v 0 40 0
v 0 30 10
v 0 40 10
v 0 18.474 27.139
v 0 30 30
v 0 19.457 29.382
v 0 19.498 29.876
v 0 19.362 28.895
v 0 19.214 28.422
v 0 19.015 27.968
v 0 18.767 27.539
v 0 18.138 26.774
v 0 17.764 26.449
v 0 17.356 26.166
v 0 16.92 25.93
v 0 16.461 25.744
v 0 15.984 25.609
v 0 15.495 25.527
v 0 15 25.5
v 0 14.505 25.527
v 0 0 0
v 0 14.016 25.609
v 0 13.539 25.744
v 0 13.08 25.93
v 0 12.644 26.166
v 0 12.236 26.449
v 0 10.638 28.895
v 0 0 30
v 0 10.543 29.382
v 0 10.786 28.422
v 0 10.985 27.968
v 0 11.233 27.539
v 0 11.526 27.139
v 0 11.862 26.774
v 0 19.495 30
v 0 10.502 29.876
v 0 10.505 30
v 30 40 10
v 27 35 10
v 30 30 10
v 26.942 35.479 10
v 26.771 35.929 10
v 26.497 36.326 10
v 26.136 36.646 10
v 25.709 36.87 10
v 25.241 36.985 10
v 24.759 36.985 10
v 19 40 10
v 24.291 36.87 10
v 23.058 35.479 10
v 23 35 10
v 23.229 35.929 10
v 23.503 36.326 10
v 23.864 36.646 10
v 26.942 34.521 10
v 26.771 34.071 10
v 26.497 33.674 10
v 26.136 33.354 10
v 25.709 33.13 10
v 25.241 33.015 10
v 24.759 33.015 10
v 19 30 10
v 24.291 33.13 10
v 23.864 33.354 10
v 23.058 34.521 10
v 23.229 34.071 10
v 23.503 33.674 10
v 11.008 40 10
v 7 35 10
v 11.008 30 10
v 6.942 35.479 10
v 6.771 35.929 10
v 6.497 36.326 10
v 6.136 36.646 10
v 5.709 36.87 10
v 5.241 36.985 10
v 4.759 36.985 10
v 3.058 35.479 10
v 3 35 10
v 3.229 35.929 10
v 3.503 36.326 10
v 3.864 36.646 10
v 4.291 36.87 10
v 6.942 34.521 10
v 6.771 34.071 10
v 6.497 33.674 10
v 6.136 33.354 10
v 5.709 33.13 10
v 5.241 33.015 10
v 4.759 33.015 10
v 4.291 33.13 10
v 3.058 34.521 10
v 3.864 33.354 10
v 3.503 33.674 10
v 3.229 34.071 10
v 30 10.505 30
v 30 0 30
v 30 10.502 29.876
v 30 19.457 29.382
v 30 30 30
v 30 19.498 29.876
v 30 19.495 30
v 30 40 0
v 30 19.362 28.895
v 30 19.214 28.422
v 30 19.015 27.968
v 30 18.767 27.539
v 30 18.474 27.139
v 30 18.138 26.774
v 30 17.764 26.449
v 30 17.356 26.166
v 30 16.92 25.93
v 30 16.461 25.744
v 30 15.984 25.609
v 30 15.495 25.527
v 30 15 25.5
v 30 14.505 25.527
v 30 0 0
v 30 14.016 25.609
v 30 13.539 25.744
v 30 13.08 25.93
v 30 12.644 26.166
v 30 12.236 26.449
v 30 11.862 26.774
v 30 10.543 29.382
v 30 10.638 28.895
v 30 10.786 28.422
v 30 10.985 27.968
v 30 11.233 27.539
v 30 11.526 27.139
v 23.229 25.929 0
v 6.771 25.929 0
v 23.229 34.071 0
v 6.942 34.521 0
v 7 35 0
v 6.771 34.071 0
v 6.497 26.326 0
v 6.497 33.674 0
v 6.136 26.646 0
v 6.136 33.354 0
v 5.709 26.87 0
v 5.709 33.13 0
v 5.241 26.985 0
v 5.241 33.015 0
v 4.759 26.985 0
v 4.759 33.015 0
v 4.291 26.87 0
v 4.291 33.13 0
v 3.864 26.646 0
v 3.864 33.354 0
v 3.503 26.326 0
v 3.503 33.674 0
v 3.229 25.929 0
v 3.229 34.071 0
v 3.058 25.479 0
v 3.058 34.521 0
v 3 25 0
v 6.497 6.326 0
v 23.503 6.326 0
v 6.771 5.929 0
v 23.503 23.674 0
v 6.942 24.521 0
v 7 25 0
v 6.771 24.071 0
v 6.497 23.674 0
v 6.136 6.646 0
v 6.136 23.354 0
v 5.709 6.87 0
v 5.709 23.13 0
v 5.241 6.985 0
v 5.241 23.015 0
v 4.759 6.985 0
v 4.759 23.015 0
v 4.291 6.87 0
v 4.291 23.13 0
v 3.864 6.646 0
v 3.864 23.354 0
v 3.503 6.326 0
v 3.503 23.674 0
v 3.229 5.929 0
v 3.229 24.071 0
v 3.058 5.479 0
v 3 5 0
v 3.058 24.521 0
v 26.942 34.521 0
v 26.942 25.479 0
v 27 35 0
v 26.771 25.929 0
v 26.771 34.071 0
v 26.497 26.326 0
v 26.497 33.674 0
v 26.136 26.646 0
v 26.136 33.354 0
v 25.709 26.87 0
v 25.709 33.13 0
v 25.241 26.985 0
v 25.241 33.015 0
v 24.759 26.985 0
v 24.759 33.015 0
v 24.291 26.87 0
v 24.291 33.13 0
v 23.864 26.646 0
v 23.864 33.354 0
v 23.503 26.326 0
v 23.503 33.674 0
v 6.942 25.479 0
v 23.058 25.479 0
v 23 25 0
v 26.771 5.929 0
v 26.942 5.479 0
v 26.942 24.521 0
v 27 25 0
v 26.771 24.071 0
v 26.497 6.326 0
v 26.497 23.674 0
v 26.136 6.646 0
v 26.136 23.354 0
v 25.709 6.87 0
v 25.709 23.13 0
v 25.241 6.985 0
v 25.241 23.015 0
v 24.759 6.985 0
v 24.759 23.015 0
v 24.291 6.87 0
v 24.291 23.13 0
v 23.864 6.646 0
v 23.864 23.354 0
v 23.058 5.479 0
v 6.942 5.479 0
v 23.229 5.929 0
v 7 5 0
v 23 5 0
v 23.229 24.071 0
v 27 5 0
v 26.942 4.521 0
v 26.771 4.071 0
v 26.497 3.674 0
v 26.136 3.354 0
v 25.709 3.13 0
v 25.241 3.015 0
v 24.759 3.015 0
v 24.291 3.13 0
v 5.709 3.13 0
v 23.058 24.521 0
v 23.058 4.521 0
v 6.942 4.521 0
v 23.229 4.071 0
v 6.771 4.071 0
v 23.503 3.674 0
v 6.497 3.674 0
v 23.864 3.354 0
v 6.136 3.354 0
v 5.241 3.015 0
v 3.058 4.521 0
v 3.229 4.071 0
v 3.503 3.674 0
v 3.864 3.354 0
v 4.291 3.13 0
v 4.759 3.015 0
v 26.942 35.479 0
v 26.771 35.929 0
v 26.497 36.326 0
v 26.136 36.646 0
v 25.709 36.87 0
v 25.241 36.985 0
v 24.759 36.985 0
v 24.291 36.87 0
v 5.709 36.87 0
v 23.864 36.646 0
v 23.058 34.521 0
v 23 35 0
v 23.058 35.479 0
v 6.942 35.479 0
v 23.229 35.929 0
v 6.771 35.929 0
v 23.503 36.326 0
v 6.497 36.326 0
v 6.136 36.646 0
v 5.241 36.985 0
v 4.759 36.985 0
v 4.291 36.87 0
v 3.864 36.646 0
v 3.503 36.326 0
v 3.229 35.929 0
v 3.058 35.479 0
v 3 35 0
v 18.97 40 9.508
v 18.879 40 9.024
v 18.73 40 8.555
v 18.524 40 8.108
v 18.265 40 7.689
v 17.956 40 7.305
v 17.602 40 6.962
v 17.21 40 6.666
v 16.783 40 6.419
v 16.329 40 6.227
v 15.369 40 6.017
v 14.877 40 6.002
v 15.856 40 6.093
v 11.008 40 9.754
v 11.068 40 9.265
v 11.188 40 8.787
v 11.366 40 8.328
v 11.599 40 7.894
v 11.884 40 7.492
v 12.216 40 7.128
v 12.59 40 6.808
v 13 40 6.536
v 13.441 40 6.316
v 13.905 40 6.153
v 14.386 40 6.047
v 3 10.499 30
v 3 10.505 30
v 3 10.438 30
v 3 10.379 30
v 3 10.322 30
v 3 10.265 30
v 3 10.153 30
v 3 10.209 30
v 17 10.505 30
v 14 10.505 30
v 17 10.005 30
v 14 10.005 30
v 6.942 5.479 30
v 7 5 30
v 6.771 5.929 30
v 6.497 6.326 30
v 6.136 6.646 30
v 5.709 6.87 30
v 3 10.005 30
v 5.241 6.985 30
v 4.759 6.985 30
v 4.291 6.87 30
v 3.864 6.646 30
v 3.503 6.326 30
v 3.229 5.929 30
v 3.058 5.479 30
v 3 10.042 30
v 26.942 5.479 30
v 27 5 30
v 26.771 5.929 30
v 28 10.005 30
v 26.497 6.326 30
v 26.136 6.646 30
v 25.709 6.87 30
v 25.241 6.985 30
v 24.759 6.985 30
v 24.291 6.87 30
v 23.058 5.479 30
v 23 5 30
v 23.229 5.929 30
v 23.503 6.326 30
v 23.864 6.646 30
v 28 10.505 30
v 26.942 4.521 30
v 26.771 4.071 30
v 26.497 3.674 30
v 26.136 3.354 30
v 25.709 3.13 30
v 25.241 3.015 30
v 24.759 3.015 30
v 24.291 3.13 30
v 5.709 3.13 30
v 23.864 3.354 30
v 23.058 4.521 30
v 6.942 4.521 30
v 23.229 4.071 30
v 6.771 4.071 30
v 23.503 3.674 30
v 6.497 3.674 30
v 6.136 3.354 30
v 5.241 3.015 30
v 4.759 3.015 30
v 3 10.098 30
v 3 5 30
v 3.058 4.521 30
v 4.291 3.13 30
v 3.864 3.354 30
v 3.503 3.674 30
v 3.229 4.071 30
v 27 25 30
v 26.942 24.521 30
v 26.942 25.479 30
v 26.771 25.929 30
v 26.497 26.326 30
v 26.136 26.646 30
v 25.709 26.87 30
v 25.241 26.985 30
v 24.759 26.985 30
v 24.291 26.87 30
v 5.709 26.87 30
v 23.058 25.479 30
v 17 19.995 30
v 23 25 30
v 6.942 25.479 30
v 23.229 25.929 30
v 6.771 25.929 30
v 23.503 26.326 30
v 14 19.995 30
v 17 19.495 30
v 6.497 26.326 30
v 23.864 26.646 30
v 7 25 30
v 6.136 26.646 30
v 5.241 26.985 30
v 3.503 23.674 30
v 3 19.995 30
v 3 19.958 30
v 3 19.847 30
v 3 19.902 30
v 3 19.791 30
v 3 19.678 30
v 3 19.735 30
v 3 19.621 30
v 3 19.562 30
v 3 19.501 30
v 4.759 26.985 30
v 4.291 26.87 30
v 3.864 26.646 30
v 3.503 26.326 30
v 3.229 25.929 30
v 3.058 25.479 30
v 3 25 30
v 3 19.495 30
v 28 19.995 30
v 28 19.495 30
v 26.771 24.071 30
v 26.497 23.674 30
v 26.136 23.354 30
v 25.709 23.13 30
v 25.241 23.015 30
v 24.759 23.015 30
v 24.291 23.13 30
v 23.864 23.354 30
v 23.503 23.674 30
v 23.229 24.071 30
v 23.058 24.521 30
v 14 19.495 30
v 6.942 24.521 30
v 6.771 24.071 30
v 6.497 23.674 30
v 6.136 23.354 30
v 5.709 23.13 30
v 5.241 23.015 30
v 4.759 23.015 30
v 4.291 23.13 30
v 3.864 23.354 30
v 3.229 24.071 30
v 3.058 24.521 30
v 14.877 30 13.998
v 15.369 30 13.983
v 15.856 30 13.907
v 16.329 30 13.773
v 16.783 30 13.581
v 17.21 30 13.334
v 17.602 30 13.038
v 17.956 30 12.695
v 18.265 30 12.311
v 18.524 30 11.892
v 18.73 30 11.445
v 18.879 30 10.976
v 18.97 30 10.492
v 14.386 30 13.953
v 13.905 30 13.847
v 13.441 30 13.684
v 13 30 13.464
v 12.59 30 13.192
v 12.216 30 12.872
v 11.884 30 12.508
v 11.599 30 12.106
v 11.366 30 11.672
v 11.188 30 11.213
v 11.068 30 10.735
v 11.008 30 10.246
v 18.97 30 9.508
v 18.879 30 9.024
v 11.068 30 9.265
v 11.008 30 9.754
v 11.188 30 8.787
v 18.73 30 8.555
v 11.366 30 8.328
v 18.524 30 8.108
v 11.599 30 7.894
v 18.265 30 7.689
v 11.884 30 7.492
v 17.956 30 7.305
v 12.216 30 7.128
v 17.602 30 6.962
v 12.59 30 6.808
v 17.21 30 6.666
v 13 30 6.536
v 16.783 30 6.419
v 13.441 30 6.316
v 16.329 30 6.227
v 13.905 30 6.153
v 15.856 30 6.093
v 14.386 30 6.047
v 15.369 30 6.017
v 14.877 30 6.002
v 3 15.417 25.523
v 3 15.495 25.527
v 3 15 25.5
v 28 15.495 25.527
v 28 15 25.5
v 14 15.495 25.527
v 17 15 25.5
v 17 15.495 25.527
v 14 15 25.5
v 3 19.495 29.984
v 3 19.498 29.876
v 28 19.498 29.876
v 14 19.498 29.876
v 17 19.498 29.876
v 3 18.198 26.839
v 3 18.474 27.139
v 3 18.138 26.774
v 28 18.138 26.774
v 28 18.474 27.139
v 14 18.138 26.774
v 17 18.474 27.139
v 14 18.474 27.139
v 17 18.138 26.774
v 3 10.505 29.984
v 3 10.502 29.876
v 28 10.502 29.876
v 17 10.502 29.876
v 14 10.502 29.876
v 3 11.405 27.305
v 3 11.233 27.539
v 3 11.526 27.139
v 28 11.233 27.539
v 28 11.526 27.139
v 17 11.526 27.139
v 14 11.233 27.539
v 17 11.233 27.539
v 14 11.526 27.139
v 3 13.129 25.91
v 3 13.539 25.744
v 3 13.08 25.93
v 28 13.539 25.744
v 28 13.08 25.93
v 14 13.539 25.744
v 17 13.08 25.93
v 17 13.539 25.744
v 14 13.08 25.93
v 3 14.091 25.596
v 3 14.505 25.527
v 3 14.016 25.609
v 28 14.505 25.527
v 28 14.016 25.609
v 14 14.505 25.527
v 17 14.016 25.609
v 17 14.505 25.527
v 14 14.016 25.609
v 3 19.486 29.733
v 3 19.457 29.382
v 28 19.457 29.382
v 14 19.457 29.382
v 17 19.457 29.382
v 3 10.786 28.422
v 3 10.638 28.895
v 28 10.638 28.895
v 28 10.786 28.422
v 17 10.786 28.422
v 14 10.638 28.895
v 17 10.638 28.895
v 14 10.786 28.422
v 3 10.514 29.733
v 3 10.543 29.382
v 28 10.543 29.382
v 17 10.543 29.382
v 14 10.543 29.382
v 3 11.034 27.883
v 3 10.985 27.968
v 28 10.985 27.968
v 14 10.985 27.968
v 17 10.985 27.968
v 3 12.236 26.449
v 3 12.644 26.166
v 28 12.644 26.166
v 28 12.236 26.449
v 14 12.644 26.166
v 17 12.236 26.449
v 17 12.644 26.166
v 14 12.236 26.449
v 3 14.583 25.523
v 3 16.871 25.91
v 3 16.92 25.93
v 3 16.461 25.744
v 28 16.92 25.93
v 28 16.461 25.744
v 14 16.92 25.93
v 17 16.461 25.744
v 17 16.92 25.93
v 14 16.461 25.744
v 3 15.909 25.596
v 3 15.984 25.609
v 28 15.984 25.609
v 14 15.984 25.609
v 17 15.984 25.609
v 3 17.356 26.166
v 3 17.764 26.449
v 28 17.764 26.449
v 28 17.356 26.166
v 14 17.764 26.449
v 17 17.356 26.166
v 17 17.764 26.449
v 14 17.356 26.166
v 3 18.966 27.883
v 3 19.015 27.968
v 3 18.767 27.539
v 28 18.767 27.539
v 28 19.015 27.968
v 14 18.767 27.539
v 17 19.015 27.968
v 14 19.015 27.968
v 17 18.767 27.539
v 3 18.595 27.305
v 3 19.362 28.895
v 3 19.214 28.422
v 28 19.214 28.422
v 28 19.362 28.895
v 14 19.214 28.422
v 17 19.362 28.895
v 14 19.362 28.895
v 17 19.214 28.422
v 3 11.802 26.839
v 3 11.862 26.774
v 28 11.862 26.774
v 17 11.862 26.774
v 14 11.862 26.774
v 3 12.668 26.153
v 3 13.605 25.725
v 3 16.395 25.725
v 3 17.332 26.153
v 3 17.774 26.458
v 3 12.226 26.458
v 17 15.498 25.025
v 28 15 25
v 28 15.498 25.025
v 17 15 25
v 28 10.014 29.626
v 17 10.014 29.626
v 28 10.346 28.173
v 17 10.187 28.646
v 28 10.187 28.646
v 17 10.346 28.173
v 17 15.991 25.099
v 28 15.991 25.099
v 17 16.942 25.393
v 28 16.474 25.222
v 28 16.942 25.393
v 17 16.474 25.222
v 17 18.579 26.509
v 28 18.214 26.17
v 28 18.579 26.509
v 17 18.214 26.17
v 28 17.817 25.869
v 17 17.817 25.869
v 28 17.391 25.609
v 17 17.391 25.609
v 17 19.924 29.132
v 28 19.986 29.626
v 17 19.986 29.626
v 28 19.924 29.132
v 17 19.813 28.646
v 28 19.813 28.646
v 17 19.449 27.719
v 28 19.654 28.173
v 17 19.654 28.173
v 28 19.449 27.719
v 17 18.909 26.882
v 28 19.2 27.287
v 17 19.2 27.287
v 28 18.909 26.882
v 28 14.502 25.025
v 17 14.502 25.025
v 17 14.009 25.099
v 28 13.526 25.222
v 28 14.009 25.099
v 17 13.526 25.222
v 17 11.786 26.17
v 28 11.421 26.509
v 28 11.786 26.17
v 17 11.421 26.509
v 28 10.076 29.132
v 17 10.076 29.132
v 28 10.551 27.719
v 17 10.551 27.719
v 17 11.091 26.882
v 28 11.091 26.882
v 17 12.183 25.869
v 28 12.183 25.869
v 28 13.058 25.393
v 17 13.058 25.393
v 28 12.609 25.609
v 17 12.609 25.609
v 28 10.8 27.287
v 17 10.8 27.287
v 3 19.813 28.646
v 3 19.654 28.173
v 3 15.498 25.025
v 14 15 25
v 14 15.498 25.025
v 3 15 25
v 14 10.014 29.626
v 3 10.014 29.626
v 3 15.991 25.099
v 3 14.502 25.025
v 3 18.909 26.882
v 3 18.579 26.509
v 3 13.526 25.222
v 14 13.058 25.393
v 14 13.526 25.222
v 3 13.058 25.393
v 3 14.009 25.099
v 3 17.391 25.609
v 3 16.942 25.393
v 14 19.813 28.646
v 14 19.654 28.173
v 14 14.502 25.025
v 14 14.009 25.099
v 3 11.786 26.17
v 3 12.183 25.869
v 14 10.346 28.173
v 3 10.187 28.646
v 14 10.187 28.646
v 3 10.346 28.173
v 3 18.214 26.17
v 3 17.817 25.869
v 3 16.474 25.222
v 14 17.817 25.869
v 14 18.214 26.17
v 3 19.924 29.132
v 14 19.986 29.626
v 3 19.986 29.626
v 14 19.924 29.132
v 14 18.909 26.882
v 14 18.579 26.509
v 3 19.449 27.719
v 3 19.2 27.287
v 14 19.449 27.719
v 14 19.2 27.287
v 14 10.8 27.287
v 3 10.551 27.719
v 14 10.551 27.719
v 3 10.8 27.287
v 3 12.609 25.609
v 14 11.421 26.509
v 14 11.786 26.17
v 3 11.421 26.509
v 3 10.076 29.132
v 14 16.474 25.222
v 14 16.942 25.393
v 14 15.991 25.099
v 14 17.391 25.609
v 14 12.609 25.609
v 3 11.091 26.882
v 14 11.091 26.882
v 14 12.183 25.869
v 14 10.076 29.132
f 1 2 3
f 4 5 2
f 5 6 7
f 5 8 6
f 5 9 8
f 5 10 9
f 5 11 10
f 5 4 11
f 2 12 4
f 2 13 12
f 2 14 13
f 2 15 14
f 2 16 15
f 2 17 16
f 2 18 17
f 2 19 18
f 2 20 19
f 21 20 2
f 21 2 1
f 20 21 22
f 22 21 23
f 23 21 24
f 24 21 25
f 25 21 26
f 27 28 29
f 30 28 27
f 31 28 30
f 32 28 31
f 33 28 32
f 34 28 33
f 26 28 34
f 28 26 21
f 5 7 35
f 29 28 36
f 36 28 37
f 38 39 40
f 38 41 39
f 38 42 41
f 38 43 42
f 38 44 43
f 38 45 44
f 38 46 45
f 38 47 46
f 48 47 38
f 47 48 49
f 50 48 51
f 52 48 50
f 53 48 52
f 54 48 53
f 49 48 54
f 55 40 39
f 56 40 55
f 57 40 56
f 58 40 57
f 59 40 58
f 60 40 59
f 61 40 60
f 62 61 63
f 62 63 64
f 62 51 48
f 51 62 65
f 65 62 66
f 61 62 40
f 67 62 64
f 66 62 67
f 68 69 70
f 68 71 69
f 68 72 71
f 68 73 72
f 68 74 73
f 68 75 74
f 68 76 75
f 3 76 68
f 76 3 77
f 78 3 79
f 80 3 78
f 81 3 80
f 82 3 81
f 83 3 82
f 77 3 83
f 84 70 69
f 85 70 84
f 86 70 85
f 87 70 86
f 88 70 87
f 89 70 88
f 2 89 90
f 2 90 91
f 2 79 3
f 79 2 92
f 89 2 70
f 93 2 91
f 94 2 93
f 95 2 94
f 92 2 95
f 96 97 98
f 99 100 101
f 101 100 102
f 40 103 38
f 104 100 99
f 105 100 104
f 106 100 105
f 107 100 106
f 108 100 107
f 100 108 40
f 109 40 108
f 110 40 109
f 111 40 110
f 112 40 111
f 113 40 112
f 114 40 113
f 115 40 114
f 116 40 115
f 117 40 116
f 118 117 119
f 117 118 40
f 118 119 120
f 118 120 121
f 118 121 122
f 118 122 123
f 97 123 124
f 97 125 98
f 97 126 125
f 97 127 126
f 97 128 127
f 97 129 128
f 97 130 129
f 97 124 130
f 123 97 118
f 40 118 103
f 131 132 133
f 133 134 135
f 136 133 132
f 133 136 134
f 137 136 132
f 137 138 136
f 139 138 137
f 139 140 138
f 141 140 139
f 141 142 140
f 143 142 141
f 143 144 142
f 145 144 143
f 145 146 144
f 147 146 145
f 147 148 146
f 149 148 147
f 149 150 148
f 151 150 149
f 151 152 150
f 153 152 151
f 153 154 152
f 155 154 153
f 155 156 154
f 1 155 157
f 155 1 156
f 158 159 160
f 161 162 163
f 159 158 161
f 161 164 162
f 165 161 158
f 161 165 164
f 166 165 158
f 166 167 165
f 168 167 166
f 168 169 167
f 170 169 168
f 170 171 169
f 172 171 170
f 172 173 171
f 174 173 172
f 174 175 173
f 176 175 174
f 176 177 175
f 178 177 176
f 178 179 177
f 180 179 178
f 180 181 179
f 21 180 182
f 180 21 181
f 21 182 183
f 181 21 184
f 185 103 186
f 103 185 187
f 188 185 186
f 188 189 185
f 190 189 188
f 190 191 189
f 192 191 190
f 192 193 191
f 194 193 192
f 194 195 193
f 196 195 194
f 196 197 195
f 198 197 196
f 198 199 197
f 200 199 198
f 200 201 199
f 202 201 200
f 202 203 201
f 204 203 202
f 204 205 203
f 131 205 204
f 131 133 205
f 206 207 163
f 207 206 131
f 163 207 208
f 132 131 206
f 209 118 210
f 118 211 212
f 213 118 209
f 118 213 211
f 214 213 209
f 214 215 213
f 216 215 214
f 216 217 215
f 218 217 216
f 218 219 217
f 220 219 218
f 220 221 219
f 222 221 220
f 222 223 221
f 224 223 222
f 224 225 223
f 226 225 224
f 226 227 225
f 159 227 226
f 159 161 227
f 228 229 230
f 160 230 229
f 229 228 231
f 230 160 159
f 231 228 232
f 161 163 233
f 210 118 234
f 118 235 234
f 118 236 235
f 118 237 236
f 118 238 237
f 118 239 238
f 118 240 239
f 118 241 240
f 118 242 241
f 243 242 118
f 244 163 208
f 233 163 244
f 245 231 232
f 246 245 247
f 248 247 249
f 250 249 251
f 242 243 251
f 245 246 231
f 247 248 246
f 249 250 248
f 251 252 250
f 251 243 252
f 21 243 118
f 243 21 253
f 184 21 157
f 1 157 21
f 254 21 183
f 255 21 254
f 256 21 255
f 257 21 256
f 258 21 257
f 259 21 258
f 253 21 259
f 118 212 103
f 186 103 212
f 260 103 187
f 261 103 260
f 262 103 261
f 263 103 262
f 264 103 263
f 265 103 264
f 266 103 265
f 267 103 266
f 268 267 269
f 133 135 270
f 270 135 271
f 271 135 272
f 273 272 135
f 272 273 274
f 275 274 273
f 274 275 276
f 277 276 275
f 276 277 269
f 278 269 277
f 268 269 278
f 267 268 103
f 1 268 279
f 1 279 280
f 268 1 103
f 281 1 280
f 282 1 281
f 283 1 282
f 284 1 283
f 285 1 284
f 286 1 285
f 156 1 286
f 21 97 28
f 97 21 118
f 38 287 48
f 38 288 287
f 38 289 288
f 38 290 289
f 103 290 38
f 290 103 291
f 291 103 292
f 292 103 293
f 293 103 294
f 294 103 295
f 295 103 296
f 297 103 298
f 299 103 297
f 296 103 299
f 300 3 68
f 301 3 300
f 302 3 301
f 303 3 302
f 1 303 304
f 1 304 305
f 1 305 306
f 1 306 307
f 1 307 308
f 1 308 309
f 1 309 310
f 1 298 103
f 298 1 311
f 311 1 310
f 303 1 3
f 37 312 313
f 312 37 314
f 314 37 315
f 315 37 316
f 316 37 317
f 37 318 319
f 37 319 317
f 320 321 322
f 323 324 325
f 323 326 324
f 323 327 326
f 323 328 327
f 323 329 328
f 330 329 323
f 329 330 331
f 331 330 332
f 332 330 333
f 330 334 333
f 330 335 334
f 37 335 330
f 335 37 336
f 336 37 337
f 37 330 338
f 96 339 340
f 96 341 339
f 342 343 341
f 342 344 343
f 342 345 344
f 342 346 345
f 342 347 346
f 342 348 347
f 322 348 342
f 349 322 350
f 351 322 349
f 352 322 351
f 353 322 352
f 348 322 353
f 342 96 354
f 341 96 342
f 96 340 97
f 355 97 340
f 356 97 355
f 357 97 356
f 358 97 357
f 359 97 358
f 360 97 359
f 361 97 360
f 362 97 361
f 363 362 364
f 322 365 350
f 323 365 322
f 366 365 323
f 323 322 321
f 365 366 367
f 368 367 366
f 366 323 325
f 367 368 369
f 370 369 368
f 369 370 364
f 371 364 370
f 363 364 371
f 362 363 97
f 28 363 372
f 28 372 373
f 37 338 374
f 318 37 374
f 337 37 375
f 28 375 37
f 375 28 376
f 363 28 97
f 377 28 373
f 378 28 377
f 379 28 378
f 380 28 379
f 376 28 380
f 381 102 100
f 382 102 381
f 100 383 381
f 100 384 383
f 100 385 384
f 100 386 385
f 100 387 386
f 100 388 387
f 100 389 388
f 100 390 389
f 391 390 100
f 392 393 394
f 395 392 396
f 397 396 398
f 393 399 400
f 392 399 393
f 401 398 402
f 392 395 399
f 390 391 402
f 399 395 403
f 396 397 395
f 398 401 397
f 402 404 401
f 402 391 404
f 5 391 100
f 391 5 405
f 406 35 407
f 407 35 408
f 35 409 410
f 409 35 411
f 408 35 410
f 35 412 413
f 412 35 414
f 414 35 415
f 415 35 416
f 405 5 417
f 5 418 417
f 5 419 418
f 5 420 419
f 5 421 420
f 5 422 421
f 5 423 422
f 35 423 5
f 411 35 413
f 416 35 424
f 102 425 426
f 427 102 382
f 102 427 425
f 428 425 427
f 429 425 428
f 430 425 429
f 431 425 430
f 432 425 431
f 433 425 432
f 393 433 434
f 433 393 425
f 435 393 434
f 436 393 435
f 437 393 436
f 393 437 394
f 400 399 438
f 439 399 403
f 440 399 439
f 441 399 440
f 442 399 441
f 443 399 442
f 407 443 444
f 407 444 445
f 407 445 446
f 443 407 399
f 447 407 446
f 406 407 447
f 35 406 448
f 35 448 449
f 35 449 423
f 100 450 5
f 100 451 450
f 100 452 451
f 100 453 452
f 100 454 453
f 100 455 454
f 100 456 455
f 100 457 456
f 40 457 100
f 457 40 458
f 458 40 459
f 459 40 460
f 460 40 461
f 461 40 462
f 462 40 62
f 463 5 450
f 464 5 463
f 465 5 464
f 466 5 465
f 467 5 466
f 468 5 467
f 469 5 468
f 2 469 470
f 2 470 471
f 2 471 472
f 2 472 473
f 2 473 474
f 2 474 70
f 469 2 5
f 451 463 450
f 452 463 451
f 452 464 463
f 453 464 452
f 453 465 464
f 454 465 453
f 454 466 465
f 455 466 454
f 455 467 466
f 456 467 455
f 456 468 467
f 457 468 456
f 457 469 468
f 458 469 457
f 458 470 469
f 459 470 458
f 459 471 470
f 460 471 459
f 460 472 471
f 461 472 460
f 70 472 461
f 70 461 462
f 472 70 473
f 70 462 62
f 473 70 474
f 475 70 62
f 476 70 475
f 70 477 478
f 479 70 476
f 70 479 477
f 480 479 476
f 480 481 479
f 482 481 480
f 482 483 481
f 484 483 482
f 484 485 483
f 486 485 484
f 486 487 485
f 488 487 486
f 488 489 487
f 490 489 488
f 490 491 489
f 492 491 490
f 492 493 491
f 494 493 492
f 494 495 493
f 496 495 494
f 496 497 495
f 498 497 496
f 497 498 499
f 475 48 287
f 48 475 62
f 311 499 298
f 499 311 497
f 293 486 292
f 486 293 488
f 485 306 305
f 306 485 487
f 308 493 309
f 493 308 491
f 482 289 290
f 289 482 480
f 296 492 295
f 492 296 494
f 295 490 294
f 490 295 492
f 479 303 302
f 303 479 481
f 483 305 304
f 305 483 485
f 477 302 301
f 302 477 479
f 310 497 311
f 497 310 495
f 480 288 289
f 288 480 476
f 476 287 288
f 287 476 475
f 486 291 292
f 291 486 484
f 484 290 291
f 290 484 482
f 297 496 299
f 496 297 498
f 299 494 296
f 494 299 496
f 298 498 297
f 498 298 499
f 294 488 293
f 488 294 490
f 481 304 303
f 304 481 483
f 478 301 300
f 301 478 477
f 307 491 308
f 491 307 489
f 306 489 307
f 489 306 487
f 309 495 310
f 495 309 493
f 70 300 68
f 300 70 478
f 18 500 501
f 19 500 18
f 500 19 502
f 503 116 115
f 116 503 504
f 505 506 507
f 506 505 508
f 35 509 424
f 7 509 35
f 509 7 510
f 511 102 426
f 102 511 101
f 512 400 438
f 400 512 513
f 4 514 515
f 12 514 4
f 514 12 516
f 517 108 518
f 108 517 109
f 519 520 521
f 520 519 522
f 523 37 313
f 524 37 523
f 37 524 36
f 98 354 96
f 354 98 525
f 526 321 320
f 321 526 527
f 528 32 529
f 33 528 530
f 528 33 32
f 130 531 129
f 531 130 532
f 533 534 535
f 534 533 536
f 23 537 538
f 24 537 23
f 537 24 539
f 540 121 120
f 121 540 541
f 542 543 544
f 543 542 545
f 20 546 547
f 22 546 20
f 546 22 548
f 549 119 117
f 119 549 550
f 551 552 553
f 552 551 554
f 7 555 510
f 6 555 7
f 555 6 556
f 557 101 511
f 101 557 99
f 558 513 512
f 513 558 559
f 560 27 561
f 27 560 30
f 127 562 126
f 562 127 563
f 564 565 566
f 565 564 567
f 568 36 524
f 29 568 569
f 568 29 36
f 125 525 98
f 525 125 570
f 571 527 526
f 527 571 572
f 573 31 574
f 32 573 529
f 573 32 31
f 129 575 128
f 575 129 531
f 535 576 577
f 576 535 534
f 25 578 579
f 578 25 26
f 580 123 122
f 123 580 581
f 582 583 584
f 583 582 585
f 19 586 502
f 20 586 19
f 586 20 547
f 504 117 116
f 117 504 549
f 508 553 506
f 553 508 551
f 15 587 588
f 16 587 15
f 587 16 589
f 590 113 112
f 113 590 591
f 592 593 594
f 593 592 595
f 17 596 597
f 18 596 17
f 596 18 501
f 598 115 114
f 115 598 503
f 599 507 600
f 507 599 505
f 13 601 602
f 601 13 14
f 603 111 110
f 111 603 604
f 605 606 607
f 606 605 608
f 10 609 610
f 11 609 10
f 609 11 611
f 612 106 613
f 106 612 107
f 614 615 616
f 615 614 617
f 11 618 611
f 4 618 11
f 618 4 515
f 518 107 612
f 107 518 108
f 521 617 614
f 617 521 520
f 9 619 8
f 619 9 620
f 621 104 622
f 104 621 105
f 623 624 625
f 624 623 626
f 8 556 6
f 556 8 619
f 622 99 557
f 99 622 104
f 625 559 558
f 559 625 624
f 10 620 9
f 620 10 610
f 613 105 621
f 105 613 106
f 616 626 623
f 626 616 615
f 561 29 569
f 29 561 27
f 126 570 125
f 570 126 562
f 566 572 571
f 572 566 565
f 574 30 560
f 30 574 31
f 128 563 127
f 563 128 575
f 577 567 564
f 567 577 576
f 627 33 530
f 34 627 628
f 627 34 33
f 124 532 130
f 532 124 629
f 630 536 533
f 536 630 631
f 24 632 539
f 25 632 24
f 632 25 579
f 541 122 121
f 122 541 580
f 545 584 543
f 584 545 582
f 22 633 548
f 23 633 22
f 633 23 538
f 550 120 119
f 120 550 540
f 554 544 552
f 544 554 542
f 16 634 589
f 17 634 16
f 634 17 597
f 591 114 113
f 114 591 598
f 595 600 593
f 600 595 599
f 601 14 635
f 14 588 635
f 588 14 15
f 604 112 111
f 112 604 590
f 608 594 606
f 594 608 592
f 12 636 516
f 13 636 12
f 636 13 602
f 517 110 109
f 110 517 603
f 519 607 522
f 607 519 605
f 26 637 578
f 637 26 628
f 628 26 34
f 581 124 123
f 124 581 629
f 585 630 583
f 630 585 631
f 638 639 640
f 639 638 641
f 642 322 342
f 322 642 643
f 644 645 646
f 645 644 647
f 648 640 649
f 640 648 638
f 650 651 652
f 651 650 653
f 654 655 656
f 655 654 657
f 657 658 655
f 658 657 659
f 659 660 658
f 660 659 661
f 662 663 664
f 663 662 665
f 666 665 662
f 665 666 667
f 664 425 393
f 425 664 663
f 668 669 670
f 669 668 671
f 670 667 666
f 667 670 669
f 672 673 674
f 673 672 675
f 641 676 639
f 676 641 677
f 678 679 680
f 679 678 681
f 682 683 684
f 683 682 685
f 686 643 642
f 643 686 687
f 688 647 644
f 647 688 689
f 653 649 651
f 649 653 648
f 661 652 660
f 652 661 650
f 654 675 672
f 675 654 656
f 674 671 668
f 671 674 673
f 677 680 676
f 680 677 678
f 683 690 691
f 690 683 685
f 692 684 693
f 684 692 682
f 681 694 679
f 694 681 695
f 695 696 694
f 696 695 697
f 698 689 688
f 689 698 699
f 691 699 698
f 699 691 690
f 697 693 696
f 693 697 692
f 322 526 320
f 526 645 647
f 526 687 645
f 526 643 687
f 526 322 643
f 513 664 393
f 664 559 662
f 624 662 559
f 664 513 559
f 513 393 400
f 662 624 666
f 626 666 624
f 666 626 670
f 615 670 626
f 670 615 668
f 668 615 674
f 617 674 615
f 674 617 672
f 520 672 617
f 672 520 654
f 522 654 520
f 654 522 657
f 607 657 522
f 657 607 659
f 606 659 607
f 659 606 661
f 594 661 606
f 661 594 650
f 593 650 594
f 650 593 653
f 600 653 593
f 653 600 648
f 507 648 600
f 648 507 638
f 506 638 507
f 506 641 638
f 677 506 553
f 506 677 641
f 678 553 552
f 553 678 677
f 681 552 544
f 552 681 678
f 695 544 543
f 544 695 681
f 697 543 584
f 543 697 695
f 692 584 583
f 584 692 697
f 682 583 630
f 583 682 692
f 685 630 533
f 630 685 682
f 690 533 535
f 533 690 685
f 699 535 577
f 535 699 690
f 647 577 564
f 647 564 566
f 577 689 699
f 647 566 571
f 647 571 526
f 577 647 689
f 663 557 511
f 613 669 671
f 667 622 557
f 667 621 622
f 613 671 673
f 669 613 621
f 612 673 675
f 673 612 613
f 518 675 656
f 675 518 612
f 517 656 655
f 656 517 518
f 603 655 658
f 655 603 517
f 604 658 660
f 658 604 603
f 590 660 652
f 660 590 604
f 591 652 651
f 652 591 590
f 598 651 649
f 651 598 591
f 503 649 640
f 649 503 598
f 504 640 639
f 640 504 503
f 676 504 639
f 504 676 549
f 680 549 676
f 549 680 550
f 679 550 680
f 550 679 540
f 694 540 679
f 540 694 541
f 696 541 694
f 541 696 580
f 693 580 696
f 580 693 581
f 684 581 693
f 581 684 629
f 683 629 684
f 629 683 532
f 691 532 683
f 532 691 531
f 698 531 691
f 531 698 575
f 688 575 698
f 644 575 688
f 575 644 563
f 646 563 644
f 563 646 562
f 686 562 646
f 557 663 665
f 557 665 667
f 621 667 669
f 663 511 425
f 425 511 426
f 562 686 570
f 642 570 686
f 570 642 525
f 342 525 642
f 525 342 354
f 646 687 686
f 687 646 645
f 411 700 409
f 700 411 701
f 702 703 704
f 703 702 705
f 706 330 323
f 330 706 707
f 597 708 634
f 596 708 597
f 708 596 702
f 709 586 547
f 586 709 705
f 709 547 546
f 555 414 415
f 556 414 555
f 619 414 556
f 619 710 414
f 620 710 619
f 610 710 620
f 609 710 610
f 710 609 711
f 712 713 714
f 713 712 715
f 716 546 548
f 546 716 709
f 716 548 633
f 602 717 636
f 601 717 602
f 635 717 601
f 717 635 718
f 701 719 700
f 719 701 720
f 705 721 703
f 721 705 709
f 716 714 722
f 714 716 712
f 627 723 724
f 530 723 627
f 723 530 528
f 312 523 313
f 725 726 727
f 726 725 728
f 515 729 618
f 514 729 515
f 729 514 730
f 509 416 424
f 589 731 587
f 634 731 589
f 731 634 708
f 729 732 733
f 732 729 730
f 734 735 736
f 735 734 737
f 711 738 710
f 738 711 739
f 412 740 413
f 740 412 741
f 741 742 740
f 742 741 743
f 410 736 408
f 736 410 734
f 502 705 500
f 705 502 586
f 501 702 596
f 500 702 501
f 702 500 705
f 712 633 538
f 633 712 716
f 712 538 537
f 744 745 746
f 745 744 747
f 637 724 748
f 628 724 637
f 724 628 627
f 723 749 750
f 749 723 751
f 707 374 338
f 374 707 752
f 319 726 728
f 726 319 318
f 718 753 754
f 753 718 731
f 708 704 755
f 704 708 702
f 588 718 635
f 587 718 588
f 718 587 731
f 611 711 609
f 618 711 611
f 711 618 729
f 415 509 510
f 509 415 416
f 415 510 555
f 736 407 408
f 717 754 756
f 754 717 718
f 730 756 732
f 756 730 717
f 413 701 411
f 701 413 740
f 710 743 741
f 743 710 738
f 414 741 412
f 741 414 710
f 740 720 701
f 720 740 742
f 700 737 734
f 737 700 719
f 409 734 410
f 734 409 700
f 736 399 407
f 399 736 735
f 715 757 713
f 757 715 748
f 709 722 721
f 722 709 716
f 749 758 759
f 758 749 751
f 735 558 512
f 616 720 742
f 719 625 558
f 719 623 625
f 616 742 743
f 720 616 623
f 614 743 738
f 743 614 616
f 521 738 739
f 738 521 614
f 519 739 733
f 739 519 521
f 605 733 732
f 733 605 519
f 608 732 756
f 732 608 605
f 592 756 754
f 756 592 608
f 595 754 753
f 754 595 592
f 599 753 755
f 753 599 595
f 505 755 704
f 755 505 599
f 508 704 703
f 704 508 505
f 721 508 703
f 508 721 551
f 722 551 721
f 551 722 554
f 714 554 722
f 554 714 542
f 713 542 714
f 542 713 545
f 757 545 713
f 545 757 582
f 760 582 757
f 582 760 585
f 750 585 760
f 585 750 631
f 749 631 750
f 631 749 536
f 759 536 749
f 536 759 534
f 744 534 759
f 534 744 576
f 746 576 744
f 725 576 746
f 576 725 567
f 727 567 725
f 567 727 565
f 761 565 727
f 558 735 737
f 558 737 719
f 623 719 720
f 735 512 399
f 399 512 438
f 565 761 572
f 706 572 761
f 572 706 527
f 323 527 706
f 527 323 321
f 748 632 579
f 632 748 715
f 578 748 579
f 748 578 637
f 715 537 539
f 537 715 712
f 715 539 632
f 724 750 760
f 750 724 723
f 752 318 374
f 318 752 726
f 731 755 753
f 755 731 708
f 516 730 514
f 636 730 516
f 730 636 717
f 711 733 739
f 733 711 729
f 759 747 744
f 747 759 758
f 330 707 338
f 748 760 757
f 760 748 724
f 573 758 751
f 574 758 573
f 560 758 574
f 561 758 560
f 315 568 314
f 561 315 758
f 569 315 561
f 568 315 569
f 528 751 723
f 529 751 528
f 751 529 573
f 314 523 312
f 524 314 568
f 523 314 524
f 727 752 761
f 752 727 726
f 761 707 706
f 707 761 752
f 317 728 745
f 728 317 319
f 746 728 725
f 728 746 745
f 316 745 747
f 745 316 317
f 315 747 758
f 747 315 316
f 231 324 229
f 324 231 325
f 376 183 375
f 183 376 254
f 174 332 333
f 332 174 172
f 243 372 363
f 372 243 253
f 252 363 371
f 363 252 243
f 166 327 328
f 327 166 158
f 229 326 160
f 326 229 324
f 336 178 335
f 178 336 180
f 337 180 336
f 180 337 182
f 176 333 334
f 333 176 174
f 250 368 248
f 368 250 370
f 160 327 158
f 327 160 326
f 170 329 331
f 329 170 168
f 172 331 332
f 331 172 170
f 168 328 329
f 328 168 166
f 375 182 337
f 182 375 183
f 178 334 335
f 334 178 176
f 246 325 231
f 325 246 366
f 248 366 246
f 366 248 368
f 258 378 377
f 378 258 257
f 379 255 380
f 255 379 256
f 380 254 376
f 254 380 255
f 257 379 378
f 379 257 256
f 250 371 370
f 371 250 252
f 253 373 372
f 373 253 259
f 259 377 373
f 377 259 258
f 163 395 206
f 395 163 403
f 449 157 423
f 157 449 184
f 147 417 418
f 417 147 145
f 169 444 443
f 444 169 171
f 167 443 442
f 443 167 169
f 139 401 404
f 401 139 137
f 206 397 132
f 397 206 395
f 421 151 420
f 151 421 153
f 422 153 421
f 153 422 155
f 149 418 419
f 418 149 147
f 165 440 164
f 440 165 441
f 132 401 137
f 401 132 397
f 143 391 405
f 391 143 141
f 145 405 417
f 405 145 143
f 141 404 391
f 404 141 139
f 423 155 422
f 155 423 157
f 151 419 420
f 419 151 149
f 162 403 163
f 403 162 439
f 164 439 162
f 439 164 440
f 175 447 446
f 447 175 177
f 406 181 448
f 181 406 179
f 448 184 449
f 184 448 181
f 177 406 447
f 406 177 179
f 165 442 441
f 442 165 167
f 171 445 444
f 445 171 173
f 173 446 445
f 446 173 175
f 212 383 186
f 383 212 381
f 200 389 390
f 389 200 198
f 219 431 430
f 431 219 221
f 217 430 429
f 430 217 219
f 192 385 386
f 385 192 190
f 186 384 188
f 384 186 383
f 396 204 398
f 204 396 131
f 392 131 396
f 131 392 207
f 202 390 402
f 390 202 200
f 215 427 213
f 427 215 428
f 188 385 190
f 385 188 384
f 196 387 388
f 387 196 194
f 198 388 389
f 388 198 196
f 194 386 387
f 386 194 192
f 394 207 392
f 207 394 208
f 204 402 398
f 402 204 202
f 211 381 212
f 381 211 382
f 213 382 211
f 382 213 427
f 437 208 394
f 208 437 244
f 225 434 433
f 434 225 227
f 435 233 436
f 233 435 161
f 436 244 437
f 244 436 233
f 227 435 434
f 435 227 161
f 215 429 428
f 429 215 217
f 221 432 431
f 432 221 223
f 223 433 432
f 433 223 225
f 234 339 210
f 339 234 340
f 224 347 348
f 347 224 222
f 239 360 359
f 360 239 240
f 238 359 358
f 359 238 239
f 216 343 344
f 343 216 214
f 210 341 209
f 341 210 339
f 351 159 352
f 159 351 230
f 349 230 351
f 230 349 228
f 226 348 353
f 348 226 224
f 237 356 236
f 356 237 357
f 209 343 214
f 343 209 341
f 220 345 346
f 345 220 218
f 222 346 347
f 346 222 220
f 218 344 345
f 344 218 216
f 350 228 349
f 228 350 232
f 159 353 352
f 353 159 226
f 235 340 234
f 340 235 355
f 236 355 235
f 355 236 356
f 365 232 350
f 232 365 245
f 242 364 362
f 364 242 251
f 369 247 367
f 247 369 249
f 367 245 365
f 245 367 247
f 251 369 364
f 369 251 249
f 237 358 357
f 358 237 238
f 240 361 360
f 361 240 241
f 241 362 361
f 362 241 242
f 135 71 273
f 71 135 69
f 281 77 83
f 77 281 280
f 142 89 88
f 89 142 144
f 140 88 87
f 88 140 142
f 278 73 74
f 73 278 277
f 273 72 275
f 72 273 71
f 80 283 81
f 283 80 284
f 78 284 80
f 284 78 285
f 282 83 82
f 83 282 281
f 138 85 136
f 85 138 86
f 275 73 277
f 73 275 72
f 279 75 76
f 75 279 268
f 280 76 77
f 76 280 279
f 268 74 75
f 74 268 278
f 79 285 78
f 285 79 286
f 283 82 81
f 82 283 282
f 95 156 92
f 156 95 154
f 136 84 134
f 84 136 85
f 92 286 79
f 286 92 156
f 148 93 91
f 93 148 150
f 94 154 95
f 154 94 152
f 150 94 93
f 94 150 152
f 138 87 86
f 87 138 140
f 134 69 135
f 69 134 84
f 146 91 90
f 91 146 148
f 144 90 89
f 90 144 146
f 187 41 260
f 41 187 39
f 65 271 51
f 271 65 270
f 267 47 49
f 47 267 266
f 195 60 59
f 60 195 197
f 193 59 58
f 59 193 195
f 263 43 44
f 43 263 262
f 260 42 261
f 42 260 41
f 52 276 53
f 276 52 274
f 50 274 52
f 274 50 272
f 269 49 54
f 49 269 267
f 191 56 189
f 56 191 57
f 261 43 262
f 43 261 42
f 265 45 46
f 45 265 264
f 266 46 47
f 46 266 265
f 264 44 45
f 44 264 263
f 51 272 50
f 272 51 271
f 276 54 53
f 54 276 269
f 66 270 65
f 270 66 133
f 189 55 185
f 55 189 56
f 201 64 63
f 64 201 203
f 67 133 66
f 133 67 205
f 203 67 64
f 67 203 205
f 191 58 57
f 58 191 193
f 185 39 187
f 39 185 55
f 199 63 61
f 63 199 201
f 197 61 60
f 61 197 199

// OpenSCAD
// file: Parameters.scad
/* Frame and Hardware Parameters */
bracketThickness = 5;
extrusionThickness = 15;
narrowScrewHoleSpacing = 15;
wideScrewHoleSpacing = 30;
screwHoleDiam = 4;


/* Design Parameters */
XYSpacing = 20;
platformLength = 153;

/* Gear Parameters */
gearDiam = 30;

/*clamp parameters*/
clampWidth = 30;


/* 608 Bearing Mount Parameters */
bearingHolderWallThickness = 3;
bearingHolderWallHeight = 4;
bearingRadius = 11;

/* rod parameters */
rodClearance = 10;
rodDiam = 8;

/* top bracket parameters */
gearSpacing = 10; // spacing between gear and extrusion
exteriorSpace = 10; // spacing beyond the bearing mount

/* lower bracket parameters */
footHeight = 10;
footDimension = bracketThickness + extrusionThickness;
bracketInnerDimension = 30;

/* nema mount size */
nemaMountSize = 40;
slideyNemaMountSize = 60;

/* Z axis Parameters */
ZSupportSpacing = 50; //how wide the Z supports are
zSupportBeamSpacing = nemaMountSize / 2; //how far the z supports are from the beam

$fs = .5;
$fa = 3;
// main file
include <Parameters.scad>

genBottom = true;
genLowTop = false;
genHighTop = false;

if (genBottom) difference () {
	union() {
		cube([30, 40, 10]);
		cube([30,30,30]);
	}
	translate([15, 30, 10]) rotate([-90,0,0]) cylinder(h=11, d=8);

	translate([-1,15,30]) rotate([0,90,0]) cylinder(h=100, d=9);
	translate([17,15,30]) rotate([0,90,0]) cylinder(h=11, d=10);
	translate([3,15,30]) rotate([0,90,0]) cylinder(h=11, d=10);

	translate([5,5,-1]) cylinder(h=100, d=screwHoleDiam);
	translate([5,25,-1]) cylinder(h=100, d=screwHoleDiam);
	translate([25,25,-1]) cylinder(h=100, d=screwHoleDiam);
	translate([25,5,-1]) cylinder(h=100, d=screwHoleDiam);

	translate([5,35,-1]) cylinder(h=100, d=screwHoleDiam);
	translate([25,35,-1]) cylinder(h=100, d=screwHoleDiam);
}

if (genLowTop) difference () {
	translate([0,30,10]) cube ([30,10,10]);

	translate([15, 30, 10]) rotate([-90,0,0]) cylinder(h=11, d=8);

	translate([5,35,-1]) cylinder(h=100, d=screwHoleDiam);
	translate([25,35,-1]) cylinder(h=100, d=screwHoleDiam);
}

if (genHighTop) difference () {
	translate([0,0,30]) cube ([30,30,10]);

 	translate([-1,15,30]) rotate([0,90,0]) cylinder(h=100, d=9);
	translate([17,15,30]) rotate([0,90,0]) cylinder(h=11, d=10);
	translate([3,15,30]) rotate([0,90,0]) cylinder(h=11, d=10);

	translate([5,5,-1]) cylinder(h=100, d=screwHoleDiam);
	translate([5,25,-1]) cylinder(h=100, d=screwHoleDiam);
	translate([25,25,-1]) cylinder(h=100, d=screwHoleDiam);
	translate([25,5,-1]) cylinder(h=100, d=screwHoleDiam);
}
